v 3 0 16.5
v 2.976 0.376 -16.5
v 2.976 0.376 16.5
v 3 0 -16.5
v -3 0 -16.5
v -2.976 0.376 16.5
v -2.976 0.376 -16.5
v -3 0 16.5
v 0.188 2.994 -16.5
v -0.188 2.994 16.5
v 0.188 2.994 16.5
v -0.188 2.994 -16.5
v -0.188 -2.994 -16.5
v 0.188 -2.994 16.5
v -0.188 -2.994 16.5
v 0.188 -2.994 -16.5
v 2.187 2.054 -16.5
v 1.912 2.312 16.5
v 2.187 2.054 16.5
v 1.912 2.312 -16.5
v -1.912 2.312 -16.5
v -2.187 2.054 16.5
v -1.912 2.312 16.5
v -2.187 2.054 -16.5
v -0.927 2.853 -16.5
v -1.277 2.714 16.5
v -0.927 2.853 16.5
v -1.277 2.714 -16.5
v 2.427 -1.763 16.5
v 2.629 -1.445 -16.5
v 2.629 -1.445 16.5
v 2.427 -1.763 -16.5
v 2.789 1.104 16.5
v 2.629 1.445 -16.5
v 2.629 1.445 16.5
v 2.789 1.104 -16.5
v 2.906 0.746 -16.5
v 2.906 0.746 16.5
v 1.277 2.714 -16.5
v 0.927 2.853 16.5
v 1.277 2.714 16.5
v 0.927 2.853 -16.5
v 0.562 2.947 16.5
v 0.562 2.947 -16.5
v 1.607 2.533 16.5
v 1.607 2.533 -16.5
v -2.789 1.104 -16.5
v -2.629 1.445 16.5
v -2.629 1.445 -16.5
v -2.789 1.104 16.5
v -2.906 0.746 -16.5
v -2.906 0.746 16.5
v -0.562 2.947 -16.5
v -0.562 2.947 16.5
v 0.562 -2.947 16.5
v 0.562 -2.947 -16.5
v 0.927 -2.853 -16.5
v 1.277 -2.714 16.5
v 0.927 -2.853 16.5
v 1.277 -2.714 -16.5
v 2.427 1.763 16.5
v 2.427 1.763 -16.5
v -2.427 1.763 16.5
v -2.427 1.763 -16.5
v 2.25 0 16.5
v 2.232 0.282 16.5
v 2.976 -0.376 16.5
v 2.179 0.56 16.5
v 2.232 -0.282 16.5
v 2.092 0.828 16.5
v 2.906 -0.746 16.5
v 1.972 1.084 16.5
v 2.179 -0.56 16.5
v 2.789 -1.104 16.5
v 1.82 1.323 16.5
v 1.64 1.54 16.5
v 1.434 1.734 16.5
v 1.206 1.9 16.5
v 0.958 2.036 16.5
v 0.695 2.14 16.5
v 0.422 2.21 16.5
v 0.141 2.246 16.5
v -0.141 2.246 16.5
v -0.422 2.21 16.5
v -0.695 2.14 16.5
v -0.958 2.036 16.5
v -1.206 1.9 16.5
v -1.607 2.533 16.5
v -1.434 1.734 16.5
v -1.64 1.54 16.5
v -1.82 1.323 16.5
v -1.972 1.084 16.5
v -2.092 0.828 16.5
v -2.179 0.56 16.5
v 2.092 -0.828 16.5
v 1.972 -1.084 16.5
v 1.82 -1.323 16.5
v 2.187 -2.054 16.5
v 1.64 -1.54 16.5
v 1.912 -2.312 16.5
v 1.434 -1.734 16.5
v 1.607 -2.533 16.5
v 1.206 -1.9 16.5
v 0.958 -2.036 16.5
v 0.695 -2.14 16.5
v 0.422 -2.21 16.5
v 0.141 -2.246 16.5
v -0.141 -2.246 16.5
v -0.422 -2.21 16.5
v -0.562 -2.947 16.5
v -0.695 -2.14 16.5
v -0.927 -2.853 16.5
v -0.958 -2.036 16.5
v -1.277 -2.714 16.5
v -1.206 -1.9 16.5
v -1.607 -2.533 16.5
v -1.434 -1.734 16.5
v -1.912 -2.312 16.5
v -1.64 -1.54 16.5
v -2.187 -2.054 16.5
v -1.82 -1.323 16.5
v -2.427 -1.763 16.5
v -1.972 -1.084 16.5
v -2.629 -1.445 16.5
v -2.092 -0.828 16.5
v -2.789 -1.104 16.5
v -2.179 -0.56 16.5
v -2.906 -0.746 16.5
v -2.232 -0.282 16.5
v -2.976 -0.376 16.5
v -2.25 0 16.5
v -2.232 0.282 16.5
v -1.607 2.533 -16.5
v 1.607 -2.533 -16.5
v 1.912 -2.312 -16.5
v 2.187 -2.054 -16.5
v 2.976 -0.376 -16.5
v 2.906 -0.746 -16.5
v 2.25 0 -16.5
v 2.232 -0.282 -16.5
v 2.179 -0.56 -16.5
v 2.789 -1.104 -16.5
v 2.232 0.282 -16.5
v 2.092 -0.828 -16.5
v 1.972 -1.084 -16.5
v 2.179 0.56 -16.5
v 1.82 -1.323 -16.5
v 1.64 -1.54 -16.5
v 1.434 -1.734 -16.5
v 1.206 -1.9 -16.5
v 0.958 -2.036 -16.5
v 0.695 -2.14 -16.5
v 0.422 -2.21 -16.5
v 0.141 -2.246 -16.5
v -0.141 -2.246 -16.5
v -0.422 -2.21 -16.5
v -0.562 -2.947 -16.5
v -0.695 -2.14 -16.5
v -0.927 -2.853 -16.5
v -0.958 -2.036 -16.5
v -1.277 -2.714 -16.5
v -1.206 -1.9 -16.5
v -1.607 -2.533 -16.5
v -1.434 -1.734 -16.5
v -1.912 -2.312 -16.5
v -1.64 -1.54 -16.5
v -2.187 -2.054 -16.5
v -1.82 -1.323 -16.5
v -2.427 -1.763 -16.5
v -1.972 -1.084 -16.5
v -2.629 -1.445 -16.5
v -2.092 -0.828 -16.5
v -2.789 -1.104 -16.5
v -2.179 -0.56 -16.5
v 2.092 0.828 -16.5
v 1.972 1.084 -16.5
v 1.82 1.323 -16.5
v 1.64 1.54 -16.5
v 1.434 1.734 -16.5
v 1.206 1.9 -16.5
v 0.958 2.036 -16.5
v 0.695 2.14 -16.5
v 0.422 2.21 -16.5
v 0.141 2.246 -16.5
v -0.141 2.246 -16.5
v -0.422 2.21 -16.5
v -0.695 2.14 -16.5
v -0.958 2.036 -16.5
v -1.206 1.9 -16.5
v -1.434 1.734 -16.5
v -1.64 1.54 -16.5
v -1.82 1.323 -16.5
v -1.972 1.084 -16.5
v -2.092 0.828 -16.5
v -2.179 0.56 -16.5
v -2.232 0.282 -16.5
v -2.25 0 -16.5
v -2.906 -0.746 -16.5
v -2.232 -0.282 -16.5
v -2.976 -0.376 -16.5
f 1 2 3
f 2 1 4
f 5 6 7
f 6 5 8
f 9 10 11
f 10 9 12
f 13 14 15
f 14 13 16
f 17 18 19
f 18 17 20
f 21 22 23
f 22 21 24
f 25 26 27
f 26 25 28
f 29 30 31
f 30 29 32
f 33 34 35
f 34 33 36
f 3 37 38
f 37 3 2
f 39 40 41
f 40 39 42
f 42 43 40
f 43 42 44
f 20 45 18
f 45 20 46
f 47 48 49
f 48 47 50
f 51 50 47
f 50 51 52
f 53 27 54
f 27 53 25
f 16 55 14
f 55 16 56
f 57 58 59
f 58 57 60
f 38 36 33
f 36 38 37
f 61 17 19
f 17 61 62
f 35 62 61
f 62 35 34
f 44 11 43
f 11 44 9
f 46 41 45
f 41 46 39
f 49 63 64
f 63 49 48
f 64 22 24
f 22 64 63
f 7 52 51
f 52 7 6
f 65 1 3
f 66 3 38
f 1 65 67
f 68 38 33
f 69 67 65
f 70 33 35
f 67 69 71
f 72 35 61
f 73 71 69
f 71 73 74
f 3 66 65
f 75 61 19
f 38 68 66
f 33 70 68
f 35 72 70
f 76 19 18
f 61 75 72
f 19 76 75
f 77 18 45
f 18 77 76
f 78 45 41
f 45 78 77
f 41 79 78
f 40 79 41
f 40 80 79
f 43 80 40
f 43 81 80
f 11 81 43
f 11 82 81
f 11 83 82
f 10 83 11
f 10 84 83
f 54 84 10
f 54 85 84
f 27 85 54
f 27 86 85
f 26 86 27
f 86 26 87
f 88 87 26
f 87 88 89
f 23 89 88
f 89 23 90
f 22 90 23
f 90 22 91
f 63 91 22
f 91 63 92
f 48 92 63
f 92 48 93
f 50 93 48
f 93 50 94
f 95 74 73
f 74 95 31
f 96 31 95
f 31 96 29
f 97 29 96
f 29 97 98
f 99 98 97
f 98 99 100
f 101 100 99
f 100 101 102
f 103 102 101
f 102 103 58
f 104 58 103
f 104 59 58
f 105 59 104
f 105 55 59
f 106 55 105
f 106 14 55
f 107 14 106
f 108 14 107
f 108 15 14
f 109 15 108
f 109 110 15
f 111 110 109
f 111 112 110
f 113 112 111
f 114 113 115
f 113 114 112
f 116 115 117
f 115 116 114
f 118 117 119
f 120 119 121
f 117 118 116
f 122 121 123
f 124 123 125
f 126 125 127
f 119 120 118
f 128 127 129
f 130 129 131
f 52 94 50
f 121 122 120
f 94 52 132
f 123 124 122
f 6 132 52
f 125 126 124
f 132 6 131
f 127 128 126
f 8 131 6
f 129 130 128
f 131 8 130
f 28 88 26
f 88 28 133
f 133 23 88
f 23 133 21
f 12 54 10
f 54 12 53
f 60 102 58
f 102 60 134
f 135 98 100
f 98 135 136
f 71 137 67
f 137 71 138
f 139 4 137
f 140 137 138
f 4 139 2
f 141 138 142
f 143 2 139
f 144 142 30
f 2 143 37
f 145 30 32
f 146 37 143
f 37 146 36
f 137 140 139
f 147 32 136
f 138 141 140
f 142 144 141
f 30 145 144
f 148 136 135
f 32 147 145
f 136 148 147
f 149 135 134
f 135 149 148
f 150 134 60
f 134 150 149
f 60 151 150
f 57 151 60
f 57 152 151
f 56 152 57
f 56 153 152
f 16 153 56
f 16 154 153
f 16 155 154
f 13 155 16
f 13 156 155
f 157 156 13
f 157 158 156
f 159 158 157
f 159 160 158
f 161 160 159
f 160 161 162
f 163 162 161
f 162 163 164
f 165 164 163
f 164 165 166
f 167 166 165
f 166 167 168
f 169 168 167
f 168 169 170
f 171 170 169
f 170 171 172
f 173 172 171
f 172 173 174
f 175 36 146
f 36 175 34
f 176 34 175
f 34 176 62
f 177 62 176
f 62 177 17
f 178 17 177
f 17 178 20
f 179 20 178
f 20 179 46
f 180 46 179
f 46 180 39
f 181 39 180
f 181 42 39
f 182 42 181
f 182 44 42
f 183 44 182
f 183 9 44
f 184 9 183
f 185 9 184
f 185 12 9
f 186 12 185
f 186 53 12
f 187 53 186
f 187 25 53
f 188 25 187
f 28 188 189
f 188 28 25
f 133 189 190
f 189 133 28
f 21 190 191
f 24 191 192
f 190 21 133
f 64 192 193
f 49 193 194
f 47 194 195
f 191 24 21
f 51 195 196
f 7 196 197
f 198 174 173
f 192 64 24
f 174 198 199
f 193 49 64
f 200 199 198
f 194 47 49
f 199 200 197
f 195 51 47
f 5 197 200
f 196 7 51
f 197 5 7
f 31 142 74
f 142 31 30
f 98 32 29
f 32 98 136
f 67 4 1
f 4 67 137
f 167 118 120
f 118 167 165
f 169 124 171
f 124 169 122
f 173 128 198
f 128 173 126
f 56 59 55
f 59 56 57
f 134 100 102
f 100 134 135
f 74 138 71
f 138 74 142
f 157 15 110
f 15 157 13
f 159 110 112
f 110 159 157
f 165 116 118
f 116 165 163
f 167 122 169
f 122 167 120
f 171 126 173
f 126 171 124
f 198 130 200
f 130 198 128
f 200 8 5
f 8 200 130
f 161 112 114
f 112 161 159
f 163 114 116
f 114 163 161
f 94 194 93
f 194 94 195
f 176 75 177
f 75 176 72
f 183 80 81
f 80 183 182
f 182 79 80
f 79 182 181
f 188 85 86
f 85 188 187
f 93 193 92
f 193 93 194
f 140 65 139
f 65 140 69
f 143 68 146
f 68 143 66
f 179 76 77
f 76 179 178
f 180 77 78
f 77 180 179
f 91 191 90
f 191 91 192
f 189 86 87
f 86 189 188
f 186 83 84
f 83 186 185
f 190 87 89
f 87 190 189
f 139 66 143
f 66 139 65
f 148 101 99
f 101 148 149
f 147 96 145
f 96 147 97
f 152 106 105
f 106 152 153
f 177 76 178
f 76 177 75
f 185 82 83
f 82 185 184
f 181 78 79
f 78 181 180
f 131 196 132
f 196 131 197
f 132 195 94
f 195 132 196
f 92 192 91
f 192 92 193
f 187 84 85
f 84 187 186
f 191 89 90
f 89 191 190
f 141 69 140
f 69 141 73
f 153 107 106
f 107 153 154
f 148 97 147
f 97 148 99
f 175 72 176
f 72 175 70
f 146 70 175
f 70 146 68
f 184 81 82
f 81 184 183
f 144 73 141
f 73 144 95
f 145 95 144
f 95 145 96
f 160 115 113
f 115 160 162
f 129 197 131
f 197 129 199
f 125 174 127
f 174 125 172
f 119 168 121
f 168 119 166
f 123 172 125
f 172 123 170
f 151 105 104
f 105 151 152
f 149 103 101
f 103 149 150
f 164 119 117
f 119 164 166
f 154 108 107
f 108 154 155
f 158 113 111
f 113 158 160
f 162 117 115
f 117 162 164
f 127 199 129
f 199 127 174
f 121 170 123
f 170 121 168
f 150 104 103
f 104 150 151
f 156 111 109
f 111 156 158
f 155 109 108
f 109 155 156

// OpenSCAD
$fn = 50;


difference() {
	union() {
		translate(v = [0, 0, -16.5000000000]) {
			cylinder(h = 33, r = 3.0000000000);
		}
	}
	union() {
		translate(v = [0, 0, -100.0000000000]) {
			cylinder(h = 200, r = 2.2500000000);
		}
	}
}
